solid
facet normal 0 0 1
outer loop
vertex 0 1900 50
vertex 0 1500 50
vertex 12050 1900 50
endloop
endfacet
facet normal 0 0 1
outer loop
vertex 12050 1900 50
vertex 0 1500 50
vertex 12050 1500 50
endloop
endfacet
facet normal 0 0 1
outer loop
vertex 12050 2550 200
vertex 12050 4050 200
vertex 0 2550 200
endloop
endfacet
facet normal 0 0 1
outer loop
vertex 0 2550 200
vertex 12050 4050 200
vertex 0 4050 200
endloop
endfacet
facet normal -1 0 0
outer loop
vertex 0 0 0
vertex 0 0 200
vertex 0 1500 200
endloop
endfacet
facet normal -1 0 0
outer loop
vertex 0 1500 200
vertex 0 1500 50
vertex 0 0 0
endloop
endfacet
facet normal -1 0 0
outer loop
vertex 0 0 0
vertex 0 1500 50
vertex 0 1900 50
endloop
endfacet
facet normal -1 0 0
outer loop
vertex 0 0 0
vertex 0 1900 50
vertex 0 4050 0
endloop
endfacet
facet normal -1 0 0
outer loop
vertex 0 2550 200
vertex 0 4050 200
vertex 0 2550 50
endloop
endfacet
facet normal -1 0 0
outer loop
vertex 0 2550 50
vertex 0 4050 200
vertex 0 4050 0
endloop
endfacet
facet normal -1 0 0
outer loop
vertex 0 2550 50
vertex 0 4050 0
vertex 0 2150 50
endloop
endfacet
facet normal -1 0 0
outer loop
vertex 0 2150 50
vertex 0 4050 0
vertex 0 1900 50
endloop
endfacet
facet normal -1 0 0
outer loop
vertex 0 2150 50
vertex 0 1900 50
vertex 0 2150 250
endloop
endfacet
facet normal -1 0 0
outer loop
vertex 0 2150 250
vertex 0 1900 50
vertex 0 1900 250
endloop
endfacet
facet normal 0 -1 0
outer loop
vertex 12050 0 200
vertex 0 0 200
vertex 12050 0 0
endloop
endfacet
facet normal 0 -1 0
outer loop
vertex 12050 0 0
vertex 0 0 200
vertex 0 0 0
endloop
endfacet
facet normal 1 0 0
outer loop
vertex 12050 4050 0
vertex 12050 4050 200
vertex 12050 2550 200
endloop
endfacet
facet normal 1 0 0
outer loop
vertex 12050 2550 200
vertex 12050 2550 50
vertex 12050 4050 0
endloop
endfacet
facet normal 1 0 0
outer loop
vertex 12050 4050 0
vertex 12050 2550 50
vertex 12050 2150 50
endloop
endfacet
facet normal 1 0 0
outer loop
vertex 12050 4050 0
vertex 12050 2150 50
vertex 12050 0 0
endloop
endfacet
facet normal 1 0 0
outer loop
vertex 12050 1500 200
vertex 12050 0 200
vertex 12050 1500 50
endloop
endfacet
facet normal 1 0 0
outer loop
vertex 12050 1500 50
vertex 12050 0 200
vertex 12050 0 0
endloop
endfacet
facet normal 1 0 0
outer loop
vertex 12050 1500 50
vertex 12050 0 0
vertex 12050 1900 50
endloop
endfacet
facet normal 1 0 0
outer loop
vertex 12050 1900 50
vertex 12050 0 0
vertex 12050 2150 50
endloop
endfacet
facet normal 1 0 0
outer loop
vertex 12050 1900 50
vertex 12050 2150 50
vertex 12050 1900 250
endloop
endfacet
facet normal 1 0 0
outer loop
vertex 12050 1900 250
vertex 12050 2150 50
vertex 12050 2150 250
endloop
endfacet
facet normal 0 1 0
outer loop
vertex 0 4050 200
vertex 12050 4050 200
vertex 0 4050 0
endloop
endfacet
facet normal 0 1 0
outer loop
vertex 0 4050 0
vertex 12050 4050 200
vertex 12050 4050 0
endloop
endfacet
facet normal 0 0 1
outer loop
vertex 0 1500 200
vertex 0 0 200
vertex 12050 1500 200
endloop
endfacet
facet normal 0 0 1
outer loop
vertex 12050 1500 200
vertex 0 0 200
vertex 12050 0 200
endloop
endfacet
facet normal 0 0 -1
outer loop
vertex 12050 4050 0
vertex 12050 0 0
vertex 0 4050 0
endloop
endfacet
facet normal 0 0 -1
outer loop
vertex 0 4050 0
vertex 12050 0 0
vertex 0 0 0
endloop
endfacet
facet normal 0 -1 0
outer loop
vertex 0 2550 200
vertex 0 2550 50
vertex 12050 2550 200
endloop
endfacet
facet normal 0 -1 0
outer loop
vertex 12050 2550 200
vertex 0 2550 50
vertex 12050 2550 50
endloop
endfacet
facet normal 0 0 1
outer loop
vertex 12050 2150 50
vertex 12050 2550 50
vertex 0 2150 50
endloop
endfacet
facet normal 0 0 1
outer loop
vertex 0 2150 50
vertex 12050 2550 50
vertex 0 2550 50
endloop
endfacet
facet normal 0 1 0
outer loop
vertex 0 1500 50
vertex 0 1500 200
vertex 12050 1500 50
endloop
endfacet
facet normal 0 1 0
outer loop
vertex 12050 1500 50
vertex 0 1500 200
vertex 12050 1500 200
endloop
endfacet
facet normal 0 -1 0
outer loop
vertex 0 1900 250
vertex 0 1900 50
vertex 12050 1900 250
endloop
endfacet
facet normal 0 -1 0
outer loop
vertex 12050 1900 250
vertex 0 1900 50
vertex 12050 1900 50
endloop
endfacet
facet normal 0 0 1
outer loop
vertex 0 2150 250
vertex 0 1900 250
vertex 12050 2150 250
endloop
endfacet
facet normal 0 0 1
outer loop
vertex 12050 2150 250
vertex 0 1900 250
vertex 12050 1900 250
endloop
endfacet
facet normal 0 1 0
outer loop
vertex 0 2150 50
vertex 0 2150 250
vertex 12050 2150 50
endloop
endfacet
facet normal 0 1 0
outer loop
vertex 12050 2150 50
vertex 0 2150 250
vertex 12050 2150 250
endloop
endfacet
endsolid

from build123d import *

# Parameters (mm, degrees)
SKIZZE1_W                       = 12050
SKIZZE1_H                       = 4050
AUFSATZ_LINEAR_AUSTRAGEN1_DEPTH = 200
SKIZZE2_W                       = 150
SKIZZE2_H                       = 1050
SCHNITT_LINEAR_AUSTRAGEN1_DEPTH = 12714.968695887
SKIZZE3_W                       = 200
SKIZZE3_H                       = 250
AUFSATZ_LINEAR_AUSTRAGEN2_DEPTH = 12050


with BuildPart() as part:
    # Skizze1 → Aufsatz-Linear austragen1 (new body)
    with BuildSketch(Plane.XY):
        with Locations((6025, 2025)):
            Rectangle(SKIZZE1_W, SKIZZE1_H)
    extrude(amount=AUFSATZ_LINEAR_AUSTRAGEN1_DEPTH)

    # Skizze2 → Schnitt-Linear austragen1 (cut, through all)
    with BuildSketch(Plane(origin=(12050, 0, 0), x_dir=(0, 0, -1), z_dir=(1, 0, 0))):
        with Locations((-125, 2025)):
            Rectangle(SKIZZE2_W, SKIZZE2_H)
    extrude(amount=-SCHNITT_LINEAR_AUSTRAGEN1_DEPTH, mode=Mode.SUBTRACT)

    # Skizze3 → Aufsatz-Linear austragen2 (add)
    with BuildSketch(Plane(origin=(12050, 0, 0), x_dir=(0, 0, -1), z_dir=(1, 0, 0))):
        with Locations((-150, 2025)):
            Rectangle(SKIZZE3_W, SKIZZE3_H)
    extrude(amount=-AUFSATZ_LINEAR_AUSTRAGEN2_DEPTH)


solid = part.part
